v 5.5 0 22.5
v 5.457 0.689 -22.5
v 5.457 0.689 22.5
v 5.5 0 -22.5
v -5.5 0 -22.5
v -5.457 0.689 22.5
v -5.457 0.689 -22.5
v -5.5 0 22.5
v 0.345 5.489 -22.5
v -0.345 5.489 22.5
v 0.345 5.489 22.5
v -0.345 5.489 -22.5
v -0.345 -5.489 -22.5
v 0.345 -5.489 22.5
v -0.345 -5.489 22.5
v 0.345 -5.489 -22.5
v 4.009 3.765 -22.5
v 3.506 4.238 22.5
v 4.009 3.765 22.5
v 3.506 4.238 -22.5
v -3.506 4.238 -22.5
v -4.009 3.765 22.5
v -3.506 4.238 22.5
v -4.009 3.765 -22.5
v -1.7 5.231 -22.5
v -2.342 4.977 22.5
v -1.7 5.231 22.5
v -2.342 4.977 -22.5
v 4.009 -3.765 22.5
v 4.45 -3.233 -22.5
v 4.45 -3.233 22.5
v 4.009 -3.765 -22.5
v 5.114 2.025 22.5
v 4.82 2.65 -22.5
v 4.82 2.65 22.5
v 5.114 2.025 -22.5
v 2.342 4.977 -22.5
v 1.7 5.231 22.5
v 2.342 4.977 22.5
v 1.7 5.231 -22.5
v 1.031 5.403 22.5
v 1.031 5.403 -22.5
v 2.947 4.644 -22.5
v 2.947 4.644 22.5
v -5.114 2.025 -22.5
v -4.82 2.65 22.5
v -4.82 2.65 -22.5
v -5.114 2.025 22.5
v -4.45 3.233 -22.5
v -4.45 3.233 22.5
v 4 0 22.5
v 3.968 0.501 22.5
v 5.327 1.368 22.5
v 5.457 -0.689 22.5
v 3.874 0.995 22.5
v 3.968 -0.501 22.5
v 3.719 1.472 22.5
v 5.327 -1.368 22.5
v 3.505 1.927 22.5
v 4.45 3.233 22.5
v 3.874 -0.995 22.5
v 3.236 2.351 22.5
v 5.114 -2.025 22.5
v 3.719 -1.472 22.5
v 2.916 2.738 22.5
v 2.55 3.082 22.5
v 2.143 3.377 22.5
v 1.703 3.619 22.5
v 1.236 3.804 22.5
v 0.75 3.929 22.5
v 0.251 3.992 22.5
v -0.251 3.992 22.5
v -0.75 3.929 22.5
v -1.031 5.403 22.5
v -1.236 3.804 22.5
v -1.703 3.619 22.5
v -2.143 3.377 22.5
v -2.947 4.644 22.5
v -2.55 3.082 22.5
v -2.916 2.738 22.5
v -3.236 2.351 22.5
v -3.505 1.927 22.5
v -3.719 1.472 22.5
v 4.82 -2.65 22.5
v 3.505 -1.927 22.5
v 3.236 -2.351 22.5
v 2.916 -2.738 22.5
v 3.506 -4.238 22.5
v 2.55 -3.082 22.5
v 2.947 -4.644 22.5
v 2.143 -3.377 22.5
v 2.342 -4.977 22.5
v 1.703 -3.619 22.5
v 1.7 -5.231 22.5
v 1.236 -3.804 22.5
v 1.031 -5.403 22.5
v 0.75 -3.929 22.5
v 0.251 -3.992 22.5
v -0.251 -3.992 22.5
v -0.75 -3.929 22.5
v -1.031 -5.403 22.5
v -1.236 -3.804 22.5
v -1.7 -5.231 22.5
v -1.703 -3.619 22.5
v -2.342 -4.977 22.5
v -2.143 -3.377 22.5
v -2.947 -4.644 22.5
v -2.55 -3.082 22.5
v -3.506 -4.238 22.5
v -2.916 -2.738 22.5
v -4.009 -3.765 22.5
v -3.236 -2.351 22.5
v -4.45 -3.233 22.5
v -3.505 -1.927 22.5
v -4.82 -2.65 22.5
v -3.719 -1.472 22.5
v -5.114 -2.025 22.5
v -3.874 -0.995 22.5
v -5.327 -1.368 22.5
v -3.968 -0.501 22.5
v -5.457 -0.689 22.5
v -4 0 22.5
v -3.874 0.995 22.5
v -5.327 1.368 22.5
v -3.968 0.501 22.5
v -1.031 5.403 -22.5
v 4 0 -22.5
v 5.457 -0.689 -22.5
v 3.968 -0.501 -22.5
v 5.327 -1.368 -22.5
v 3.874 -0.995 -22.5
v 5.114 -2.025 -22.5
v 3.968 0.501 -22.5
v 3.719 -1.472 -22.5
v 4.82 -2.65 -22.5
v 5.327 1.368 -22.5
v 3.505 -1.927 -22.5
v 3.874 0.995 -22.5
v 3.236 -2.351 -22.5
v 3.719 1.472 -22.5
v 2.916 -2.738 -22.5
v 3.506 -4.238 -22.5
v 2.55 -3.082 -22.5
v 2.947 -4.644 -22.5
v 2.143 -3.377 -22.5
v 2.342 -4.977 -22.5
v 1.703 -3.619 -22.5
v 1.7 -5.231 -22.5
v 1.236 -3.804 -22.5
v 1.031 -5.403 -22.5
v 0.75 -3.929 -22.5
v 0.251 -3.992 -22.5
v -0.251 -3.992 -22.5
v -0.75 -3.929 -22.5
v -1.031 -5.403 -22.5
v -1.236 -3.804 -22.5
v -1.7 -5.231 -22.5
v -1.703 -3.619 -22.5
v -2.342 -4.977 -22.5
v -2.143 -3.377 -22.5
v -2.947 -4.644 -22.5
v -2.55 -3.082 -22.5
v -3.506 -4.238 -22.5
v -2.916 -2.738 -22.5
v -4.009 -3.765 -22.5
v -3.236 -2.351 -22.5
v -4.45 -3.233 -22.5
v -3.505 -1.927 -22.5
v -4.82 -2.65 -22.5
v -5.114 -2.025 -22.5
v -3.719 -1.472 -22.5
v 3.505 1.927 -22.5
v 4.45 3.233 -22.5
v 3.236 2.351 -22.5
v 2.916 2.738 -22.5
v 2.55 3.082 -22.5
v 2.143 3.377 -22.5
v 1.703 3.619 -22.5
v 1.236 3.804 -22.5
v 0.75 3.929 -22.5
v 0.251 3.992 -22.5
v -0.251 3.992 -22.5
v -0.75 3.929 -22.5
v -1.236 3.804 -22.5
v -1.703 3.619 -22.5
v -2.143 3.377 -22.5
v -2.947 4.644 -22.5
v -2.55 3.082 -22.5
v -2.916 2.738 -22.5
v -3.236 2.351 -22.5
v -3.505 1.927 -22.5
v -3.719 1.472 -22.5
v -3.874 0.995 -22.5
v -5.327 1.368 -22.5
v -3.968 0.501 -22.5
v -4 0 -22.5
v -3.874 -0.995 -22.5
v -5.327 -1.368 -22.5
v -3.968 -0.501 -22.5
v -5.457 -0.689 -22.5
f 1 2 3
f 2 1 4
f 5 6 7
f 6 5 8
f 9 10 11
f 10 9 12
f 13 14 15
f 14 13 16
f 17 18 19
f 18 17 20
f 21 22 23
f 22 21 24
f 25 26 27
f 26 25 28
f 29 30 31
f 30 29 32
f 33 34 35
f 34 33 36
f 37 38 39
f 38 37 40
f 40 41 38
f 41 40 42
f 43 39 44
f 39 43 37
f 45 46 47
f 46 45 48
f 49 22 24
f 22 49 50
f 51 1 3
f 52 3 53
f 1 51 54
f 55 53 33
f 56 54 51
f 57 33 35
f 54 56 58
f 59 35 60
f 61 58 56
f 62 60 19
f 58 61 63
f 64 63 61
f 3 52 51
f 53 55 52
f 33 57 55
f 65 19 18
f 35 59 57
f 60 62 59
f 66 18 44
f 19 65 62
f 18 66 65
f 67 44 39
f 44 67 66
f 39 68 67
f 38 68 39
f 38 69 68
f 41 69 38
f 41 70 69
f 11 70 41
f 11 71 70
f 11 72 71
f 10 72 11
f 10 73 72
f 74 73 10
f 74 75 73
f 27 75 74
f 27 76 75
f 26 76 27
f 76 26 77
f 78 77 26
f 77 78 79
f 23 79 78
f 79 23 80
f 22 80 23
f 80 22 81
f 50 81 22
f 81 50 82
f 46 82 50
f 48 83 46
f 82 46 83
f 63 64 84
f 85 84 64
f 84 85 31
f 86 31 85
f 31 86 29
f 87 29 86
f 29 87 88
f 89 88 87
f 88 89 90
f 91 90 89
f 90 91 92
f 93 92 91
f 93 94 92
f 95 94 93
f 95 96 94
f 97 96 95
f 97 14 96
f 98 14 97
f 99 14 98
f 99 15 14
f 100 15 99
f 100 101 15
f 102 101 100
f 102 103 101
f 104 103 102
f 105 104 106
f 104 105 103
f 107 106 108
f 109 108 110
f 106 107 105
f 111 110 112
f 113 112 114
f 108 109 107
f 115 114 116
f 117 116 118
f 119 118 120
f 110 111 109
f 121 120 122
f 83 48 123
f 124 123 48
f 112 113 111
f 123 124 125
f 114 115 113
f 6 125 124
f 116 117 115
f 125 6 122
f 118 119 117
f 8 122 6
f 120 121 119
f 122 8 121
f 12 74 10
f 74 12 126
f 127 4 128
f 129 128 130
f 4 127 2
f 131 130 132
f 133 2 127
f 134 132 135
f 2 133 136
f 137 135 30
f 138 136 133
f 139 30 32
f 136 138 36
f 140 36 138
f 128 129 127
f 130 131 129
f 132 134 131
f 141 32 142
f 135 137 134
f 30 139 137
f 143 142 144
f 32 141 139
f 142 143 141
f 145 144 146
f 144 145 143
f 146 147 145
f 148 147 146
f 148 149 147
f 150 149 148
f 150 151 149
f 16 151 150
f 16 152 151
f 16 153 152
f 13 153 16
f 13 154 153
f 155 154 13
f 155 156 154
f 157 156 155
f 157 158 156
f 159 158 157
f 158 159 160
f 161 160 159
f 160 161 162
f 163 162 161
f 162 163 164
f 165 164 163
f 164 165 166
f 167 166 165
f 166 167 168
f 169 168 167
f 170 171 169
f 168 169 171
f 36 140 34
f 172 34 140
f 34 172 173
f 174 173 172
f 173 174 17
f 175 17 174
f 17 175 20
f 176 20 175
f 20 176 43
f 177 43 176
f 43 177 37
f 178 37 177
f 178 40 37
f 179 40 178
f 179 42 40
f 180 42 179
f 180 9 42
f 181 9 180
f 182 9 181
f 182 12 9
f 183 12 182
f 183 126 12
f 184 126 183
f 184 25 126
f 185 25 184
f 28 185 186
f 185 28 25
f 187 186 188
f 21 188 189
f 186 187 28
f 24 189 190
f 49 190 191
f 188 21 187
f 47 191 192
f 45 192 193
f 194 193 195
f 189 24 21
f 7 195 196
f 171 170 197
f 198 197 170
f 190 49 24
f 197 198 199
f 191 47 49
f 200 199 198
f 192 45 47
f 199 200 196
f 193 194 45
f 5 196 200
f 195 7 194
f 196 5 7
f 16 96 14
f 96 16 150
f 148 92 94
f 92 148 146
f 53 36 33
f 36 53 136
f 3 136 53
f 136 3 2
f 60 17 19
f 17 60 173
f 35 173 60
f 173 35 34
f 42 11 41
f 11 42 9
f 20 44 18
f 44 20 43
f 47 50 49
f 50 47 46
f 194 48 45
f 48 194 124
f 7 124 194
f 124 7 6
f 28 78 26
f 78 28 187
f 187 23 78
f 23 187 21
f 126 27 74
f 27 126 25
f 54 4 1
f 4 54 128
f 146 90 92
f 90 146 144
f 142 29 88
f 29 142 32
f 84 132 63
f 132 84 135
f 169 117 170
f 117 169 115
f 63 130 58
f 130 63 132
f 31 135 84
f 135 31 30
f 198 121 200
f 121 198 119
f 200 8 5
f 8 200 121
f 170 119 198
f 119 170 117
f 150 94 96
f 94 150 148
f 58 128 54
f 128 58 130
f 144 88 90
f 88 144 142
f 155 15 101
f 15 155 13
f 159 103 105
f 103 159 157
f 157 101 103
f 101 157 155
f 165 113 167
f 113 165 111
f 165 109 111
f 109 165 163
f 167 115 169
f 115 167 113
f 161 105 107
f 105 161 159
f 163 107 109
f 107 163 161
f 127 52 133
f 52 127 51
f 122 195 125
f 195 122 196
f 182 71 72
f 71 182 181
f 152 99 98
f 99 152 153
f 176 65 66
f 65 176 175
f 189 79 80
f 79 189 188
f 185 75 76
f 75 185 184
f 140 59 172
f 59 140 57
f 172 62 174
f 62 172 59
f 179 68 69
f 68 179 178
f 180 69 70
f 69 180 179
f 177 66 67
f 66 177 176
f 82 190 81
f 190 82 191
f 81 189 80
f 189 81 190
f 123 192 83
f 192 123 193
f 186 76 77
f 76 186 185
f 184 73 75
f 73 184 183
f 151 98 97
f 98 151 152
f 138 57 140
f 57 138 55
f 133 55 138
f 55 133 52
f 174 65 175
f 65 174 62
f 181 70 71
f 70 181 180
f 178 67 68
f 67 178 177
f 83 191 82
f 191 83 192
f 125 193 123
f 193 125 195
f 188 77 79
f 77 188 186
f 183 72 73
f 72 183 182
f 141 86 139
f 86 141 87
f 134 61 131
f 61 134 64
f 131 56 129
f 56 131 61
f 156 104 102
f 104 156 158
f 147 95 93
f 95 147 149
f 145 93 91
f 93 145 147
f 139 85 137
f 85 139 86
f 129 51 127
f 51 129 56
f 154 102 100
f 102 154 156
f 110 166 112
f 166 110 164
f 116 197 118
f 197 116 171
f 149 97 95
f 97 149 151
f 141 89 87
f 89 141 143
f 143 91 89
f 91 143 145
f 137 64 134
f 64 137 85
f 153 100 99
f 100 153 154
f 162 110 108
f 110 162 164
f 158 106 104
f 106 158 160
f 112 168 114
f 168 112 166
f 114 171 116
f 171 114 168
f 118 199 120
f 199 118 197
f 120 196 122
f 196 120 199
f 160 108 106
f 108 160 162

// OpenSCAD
$fn = 50;


difference() {
	union() {
		translate(v = [0, 0, -22.5000000000]) {
			cylinder(h = 45, r = 5.5000000000);
		}
	}
	union() {
		translate(v = [0, 0, -100.0000000000]) {
			cylinder(h = 200, r = 4);
		}
	}
}
